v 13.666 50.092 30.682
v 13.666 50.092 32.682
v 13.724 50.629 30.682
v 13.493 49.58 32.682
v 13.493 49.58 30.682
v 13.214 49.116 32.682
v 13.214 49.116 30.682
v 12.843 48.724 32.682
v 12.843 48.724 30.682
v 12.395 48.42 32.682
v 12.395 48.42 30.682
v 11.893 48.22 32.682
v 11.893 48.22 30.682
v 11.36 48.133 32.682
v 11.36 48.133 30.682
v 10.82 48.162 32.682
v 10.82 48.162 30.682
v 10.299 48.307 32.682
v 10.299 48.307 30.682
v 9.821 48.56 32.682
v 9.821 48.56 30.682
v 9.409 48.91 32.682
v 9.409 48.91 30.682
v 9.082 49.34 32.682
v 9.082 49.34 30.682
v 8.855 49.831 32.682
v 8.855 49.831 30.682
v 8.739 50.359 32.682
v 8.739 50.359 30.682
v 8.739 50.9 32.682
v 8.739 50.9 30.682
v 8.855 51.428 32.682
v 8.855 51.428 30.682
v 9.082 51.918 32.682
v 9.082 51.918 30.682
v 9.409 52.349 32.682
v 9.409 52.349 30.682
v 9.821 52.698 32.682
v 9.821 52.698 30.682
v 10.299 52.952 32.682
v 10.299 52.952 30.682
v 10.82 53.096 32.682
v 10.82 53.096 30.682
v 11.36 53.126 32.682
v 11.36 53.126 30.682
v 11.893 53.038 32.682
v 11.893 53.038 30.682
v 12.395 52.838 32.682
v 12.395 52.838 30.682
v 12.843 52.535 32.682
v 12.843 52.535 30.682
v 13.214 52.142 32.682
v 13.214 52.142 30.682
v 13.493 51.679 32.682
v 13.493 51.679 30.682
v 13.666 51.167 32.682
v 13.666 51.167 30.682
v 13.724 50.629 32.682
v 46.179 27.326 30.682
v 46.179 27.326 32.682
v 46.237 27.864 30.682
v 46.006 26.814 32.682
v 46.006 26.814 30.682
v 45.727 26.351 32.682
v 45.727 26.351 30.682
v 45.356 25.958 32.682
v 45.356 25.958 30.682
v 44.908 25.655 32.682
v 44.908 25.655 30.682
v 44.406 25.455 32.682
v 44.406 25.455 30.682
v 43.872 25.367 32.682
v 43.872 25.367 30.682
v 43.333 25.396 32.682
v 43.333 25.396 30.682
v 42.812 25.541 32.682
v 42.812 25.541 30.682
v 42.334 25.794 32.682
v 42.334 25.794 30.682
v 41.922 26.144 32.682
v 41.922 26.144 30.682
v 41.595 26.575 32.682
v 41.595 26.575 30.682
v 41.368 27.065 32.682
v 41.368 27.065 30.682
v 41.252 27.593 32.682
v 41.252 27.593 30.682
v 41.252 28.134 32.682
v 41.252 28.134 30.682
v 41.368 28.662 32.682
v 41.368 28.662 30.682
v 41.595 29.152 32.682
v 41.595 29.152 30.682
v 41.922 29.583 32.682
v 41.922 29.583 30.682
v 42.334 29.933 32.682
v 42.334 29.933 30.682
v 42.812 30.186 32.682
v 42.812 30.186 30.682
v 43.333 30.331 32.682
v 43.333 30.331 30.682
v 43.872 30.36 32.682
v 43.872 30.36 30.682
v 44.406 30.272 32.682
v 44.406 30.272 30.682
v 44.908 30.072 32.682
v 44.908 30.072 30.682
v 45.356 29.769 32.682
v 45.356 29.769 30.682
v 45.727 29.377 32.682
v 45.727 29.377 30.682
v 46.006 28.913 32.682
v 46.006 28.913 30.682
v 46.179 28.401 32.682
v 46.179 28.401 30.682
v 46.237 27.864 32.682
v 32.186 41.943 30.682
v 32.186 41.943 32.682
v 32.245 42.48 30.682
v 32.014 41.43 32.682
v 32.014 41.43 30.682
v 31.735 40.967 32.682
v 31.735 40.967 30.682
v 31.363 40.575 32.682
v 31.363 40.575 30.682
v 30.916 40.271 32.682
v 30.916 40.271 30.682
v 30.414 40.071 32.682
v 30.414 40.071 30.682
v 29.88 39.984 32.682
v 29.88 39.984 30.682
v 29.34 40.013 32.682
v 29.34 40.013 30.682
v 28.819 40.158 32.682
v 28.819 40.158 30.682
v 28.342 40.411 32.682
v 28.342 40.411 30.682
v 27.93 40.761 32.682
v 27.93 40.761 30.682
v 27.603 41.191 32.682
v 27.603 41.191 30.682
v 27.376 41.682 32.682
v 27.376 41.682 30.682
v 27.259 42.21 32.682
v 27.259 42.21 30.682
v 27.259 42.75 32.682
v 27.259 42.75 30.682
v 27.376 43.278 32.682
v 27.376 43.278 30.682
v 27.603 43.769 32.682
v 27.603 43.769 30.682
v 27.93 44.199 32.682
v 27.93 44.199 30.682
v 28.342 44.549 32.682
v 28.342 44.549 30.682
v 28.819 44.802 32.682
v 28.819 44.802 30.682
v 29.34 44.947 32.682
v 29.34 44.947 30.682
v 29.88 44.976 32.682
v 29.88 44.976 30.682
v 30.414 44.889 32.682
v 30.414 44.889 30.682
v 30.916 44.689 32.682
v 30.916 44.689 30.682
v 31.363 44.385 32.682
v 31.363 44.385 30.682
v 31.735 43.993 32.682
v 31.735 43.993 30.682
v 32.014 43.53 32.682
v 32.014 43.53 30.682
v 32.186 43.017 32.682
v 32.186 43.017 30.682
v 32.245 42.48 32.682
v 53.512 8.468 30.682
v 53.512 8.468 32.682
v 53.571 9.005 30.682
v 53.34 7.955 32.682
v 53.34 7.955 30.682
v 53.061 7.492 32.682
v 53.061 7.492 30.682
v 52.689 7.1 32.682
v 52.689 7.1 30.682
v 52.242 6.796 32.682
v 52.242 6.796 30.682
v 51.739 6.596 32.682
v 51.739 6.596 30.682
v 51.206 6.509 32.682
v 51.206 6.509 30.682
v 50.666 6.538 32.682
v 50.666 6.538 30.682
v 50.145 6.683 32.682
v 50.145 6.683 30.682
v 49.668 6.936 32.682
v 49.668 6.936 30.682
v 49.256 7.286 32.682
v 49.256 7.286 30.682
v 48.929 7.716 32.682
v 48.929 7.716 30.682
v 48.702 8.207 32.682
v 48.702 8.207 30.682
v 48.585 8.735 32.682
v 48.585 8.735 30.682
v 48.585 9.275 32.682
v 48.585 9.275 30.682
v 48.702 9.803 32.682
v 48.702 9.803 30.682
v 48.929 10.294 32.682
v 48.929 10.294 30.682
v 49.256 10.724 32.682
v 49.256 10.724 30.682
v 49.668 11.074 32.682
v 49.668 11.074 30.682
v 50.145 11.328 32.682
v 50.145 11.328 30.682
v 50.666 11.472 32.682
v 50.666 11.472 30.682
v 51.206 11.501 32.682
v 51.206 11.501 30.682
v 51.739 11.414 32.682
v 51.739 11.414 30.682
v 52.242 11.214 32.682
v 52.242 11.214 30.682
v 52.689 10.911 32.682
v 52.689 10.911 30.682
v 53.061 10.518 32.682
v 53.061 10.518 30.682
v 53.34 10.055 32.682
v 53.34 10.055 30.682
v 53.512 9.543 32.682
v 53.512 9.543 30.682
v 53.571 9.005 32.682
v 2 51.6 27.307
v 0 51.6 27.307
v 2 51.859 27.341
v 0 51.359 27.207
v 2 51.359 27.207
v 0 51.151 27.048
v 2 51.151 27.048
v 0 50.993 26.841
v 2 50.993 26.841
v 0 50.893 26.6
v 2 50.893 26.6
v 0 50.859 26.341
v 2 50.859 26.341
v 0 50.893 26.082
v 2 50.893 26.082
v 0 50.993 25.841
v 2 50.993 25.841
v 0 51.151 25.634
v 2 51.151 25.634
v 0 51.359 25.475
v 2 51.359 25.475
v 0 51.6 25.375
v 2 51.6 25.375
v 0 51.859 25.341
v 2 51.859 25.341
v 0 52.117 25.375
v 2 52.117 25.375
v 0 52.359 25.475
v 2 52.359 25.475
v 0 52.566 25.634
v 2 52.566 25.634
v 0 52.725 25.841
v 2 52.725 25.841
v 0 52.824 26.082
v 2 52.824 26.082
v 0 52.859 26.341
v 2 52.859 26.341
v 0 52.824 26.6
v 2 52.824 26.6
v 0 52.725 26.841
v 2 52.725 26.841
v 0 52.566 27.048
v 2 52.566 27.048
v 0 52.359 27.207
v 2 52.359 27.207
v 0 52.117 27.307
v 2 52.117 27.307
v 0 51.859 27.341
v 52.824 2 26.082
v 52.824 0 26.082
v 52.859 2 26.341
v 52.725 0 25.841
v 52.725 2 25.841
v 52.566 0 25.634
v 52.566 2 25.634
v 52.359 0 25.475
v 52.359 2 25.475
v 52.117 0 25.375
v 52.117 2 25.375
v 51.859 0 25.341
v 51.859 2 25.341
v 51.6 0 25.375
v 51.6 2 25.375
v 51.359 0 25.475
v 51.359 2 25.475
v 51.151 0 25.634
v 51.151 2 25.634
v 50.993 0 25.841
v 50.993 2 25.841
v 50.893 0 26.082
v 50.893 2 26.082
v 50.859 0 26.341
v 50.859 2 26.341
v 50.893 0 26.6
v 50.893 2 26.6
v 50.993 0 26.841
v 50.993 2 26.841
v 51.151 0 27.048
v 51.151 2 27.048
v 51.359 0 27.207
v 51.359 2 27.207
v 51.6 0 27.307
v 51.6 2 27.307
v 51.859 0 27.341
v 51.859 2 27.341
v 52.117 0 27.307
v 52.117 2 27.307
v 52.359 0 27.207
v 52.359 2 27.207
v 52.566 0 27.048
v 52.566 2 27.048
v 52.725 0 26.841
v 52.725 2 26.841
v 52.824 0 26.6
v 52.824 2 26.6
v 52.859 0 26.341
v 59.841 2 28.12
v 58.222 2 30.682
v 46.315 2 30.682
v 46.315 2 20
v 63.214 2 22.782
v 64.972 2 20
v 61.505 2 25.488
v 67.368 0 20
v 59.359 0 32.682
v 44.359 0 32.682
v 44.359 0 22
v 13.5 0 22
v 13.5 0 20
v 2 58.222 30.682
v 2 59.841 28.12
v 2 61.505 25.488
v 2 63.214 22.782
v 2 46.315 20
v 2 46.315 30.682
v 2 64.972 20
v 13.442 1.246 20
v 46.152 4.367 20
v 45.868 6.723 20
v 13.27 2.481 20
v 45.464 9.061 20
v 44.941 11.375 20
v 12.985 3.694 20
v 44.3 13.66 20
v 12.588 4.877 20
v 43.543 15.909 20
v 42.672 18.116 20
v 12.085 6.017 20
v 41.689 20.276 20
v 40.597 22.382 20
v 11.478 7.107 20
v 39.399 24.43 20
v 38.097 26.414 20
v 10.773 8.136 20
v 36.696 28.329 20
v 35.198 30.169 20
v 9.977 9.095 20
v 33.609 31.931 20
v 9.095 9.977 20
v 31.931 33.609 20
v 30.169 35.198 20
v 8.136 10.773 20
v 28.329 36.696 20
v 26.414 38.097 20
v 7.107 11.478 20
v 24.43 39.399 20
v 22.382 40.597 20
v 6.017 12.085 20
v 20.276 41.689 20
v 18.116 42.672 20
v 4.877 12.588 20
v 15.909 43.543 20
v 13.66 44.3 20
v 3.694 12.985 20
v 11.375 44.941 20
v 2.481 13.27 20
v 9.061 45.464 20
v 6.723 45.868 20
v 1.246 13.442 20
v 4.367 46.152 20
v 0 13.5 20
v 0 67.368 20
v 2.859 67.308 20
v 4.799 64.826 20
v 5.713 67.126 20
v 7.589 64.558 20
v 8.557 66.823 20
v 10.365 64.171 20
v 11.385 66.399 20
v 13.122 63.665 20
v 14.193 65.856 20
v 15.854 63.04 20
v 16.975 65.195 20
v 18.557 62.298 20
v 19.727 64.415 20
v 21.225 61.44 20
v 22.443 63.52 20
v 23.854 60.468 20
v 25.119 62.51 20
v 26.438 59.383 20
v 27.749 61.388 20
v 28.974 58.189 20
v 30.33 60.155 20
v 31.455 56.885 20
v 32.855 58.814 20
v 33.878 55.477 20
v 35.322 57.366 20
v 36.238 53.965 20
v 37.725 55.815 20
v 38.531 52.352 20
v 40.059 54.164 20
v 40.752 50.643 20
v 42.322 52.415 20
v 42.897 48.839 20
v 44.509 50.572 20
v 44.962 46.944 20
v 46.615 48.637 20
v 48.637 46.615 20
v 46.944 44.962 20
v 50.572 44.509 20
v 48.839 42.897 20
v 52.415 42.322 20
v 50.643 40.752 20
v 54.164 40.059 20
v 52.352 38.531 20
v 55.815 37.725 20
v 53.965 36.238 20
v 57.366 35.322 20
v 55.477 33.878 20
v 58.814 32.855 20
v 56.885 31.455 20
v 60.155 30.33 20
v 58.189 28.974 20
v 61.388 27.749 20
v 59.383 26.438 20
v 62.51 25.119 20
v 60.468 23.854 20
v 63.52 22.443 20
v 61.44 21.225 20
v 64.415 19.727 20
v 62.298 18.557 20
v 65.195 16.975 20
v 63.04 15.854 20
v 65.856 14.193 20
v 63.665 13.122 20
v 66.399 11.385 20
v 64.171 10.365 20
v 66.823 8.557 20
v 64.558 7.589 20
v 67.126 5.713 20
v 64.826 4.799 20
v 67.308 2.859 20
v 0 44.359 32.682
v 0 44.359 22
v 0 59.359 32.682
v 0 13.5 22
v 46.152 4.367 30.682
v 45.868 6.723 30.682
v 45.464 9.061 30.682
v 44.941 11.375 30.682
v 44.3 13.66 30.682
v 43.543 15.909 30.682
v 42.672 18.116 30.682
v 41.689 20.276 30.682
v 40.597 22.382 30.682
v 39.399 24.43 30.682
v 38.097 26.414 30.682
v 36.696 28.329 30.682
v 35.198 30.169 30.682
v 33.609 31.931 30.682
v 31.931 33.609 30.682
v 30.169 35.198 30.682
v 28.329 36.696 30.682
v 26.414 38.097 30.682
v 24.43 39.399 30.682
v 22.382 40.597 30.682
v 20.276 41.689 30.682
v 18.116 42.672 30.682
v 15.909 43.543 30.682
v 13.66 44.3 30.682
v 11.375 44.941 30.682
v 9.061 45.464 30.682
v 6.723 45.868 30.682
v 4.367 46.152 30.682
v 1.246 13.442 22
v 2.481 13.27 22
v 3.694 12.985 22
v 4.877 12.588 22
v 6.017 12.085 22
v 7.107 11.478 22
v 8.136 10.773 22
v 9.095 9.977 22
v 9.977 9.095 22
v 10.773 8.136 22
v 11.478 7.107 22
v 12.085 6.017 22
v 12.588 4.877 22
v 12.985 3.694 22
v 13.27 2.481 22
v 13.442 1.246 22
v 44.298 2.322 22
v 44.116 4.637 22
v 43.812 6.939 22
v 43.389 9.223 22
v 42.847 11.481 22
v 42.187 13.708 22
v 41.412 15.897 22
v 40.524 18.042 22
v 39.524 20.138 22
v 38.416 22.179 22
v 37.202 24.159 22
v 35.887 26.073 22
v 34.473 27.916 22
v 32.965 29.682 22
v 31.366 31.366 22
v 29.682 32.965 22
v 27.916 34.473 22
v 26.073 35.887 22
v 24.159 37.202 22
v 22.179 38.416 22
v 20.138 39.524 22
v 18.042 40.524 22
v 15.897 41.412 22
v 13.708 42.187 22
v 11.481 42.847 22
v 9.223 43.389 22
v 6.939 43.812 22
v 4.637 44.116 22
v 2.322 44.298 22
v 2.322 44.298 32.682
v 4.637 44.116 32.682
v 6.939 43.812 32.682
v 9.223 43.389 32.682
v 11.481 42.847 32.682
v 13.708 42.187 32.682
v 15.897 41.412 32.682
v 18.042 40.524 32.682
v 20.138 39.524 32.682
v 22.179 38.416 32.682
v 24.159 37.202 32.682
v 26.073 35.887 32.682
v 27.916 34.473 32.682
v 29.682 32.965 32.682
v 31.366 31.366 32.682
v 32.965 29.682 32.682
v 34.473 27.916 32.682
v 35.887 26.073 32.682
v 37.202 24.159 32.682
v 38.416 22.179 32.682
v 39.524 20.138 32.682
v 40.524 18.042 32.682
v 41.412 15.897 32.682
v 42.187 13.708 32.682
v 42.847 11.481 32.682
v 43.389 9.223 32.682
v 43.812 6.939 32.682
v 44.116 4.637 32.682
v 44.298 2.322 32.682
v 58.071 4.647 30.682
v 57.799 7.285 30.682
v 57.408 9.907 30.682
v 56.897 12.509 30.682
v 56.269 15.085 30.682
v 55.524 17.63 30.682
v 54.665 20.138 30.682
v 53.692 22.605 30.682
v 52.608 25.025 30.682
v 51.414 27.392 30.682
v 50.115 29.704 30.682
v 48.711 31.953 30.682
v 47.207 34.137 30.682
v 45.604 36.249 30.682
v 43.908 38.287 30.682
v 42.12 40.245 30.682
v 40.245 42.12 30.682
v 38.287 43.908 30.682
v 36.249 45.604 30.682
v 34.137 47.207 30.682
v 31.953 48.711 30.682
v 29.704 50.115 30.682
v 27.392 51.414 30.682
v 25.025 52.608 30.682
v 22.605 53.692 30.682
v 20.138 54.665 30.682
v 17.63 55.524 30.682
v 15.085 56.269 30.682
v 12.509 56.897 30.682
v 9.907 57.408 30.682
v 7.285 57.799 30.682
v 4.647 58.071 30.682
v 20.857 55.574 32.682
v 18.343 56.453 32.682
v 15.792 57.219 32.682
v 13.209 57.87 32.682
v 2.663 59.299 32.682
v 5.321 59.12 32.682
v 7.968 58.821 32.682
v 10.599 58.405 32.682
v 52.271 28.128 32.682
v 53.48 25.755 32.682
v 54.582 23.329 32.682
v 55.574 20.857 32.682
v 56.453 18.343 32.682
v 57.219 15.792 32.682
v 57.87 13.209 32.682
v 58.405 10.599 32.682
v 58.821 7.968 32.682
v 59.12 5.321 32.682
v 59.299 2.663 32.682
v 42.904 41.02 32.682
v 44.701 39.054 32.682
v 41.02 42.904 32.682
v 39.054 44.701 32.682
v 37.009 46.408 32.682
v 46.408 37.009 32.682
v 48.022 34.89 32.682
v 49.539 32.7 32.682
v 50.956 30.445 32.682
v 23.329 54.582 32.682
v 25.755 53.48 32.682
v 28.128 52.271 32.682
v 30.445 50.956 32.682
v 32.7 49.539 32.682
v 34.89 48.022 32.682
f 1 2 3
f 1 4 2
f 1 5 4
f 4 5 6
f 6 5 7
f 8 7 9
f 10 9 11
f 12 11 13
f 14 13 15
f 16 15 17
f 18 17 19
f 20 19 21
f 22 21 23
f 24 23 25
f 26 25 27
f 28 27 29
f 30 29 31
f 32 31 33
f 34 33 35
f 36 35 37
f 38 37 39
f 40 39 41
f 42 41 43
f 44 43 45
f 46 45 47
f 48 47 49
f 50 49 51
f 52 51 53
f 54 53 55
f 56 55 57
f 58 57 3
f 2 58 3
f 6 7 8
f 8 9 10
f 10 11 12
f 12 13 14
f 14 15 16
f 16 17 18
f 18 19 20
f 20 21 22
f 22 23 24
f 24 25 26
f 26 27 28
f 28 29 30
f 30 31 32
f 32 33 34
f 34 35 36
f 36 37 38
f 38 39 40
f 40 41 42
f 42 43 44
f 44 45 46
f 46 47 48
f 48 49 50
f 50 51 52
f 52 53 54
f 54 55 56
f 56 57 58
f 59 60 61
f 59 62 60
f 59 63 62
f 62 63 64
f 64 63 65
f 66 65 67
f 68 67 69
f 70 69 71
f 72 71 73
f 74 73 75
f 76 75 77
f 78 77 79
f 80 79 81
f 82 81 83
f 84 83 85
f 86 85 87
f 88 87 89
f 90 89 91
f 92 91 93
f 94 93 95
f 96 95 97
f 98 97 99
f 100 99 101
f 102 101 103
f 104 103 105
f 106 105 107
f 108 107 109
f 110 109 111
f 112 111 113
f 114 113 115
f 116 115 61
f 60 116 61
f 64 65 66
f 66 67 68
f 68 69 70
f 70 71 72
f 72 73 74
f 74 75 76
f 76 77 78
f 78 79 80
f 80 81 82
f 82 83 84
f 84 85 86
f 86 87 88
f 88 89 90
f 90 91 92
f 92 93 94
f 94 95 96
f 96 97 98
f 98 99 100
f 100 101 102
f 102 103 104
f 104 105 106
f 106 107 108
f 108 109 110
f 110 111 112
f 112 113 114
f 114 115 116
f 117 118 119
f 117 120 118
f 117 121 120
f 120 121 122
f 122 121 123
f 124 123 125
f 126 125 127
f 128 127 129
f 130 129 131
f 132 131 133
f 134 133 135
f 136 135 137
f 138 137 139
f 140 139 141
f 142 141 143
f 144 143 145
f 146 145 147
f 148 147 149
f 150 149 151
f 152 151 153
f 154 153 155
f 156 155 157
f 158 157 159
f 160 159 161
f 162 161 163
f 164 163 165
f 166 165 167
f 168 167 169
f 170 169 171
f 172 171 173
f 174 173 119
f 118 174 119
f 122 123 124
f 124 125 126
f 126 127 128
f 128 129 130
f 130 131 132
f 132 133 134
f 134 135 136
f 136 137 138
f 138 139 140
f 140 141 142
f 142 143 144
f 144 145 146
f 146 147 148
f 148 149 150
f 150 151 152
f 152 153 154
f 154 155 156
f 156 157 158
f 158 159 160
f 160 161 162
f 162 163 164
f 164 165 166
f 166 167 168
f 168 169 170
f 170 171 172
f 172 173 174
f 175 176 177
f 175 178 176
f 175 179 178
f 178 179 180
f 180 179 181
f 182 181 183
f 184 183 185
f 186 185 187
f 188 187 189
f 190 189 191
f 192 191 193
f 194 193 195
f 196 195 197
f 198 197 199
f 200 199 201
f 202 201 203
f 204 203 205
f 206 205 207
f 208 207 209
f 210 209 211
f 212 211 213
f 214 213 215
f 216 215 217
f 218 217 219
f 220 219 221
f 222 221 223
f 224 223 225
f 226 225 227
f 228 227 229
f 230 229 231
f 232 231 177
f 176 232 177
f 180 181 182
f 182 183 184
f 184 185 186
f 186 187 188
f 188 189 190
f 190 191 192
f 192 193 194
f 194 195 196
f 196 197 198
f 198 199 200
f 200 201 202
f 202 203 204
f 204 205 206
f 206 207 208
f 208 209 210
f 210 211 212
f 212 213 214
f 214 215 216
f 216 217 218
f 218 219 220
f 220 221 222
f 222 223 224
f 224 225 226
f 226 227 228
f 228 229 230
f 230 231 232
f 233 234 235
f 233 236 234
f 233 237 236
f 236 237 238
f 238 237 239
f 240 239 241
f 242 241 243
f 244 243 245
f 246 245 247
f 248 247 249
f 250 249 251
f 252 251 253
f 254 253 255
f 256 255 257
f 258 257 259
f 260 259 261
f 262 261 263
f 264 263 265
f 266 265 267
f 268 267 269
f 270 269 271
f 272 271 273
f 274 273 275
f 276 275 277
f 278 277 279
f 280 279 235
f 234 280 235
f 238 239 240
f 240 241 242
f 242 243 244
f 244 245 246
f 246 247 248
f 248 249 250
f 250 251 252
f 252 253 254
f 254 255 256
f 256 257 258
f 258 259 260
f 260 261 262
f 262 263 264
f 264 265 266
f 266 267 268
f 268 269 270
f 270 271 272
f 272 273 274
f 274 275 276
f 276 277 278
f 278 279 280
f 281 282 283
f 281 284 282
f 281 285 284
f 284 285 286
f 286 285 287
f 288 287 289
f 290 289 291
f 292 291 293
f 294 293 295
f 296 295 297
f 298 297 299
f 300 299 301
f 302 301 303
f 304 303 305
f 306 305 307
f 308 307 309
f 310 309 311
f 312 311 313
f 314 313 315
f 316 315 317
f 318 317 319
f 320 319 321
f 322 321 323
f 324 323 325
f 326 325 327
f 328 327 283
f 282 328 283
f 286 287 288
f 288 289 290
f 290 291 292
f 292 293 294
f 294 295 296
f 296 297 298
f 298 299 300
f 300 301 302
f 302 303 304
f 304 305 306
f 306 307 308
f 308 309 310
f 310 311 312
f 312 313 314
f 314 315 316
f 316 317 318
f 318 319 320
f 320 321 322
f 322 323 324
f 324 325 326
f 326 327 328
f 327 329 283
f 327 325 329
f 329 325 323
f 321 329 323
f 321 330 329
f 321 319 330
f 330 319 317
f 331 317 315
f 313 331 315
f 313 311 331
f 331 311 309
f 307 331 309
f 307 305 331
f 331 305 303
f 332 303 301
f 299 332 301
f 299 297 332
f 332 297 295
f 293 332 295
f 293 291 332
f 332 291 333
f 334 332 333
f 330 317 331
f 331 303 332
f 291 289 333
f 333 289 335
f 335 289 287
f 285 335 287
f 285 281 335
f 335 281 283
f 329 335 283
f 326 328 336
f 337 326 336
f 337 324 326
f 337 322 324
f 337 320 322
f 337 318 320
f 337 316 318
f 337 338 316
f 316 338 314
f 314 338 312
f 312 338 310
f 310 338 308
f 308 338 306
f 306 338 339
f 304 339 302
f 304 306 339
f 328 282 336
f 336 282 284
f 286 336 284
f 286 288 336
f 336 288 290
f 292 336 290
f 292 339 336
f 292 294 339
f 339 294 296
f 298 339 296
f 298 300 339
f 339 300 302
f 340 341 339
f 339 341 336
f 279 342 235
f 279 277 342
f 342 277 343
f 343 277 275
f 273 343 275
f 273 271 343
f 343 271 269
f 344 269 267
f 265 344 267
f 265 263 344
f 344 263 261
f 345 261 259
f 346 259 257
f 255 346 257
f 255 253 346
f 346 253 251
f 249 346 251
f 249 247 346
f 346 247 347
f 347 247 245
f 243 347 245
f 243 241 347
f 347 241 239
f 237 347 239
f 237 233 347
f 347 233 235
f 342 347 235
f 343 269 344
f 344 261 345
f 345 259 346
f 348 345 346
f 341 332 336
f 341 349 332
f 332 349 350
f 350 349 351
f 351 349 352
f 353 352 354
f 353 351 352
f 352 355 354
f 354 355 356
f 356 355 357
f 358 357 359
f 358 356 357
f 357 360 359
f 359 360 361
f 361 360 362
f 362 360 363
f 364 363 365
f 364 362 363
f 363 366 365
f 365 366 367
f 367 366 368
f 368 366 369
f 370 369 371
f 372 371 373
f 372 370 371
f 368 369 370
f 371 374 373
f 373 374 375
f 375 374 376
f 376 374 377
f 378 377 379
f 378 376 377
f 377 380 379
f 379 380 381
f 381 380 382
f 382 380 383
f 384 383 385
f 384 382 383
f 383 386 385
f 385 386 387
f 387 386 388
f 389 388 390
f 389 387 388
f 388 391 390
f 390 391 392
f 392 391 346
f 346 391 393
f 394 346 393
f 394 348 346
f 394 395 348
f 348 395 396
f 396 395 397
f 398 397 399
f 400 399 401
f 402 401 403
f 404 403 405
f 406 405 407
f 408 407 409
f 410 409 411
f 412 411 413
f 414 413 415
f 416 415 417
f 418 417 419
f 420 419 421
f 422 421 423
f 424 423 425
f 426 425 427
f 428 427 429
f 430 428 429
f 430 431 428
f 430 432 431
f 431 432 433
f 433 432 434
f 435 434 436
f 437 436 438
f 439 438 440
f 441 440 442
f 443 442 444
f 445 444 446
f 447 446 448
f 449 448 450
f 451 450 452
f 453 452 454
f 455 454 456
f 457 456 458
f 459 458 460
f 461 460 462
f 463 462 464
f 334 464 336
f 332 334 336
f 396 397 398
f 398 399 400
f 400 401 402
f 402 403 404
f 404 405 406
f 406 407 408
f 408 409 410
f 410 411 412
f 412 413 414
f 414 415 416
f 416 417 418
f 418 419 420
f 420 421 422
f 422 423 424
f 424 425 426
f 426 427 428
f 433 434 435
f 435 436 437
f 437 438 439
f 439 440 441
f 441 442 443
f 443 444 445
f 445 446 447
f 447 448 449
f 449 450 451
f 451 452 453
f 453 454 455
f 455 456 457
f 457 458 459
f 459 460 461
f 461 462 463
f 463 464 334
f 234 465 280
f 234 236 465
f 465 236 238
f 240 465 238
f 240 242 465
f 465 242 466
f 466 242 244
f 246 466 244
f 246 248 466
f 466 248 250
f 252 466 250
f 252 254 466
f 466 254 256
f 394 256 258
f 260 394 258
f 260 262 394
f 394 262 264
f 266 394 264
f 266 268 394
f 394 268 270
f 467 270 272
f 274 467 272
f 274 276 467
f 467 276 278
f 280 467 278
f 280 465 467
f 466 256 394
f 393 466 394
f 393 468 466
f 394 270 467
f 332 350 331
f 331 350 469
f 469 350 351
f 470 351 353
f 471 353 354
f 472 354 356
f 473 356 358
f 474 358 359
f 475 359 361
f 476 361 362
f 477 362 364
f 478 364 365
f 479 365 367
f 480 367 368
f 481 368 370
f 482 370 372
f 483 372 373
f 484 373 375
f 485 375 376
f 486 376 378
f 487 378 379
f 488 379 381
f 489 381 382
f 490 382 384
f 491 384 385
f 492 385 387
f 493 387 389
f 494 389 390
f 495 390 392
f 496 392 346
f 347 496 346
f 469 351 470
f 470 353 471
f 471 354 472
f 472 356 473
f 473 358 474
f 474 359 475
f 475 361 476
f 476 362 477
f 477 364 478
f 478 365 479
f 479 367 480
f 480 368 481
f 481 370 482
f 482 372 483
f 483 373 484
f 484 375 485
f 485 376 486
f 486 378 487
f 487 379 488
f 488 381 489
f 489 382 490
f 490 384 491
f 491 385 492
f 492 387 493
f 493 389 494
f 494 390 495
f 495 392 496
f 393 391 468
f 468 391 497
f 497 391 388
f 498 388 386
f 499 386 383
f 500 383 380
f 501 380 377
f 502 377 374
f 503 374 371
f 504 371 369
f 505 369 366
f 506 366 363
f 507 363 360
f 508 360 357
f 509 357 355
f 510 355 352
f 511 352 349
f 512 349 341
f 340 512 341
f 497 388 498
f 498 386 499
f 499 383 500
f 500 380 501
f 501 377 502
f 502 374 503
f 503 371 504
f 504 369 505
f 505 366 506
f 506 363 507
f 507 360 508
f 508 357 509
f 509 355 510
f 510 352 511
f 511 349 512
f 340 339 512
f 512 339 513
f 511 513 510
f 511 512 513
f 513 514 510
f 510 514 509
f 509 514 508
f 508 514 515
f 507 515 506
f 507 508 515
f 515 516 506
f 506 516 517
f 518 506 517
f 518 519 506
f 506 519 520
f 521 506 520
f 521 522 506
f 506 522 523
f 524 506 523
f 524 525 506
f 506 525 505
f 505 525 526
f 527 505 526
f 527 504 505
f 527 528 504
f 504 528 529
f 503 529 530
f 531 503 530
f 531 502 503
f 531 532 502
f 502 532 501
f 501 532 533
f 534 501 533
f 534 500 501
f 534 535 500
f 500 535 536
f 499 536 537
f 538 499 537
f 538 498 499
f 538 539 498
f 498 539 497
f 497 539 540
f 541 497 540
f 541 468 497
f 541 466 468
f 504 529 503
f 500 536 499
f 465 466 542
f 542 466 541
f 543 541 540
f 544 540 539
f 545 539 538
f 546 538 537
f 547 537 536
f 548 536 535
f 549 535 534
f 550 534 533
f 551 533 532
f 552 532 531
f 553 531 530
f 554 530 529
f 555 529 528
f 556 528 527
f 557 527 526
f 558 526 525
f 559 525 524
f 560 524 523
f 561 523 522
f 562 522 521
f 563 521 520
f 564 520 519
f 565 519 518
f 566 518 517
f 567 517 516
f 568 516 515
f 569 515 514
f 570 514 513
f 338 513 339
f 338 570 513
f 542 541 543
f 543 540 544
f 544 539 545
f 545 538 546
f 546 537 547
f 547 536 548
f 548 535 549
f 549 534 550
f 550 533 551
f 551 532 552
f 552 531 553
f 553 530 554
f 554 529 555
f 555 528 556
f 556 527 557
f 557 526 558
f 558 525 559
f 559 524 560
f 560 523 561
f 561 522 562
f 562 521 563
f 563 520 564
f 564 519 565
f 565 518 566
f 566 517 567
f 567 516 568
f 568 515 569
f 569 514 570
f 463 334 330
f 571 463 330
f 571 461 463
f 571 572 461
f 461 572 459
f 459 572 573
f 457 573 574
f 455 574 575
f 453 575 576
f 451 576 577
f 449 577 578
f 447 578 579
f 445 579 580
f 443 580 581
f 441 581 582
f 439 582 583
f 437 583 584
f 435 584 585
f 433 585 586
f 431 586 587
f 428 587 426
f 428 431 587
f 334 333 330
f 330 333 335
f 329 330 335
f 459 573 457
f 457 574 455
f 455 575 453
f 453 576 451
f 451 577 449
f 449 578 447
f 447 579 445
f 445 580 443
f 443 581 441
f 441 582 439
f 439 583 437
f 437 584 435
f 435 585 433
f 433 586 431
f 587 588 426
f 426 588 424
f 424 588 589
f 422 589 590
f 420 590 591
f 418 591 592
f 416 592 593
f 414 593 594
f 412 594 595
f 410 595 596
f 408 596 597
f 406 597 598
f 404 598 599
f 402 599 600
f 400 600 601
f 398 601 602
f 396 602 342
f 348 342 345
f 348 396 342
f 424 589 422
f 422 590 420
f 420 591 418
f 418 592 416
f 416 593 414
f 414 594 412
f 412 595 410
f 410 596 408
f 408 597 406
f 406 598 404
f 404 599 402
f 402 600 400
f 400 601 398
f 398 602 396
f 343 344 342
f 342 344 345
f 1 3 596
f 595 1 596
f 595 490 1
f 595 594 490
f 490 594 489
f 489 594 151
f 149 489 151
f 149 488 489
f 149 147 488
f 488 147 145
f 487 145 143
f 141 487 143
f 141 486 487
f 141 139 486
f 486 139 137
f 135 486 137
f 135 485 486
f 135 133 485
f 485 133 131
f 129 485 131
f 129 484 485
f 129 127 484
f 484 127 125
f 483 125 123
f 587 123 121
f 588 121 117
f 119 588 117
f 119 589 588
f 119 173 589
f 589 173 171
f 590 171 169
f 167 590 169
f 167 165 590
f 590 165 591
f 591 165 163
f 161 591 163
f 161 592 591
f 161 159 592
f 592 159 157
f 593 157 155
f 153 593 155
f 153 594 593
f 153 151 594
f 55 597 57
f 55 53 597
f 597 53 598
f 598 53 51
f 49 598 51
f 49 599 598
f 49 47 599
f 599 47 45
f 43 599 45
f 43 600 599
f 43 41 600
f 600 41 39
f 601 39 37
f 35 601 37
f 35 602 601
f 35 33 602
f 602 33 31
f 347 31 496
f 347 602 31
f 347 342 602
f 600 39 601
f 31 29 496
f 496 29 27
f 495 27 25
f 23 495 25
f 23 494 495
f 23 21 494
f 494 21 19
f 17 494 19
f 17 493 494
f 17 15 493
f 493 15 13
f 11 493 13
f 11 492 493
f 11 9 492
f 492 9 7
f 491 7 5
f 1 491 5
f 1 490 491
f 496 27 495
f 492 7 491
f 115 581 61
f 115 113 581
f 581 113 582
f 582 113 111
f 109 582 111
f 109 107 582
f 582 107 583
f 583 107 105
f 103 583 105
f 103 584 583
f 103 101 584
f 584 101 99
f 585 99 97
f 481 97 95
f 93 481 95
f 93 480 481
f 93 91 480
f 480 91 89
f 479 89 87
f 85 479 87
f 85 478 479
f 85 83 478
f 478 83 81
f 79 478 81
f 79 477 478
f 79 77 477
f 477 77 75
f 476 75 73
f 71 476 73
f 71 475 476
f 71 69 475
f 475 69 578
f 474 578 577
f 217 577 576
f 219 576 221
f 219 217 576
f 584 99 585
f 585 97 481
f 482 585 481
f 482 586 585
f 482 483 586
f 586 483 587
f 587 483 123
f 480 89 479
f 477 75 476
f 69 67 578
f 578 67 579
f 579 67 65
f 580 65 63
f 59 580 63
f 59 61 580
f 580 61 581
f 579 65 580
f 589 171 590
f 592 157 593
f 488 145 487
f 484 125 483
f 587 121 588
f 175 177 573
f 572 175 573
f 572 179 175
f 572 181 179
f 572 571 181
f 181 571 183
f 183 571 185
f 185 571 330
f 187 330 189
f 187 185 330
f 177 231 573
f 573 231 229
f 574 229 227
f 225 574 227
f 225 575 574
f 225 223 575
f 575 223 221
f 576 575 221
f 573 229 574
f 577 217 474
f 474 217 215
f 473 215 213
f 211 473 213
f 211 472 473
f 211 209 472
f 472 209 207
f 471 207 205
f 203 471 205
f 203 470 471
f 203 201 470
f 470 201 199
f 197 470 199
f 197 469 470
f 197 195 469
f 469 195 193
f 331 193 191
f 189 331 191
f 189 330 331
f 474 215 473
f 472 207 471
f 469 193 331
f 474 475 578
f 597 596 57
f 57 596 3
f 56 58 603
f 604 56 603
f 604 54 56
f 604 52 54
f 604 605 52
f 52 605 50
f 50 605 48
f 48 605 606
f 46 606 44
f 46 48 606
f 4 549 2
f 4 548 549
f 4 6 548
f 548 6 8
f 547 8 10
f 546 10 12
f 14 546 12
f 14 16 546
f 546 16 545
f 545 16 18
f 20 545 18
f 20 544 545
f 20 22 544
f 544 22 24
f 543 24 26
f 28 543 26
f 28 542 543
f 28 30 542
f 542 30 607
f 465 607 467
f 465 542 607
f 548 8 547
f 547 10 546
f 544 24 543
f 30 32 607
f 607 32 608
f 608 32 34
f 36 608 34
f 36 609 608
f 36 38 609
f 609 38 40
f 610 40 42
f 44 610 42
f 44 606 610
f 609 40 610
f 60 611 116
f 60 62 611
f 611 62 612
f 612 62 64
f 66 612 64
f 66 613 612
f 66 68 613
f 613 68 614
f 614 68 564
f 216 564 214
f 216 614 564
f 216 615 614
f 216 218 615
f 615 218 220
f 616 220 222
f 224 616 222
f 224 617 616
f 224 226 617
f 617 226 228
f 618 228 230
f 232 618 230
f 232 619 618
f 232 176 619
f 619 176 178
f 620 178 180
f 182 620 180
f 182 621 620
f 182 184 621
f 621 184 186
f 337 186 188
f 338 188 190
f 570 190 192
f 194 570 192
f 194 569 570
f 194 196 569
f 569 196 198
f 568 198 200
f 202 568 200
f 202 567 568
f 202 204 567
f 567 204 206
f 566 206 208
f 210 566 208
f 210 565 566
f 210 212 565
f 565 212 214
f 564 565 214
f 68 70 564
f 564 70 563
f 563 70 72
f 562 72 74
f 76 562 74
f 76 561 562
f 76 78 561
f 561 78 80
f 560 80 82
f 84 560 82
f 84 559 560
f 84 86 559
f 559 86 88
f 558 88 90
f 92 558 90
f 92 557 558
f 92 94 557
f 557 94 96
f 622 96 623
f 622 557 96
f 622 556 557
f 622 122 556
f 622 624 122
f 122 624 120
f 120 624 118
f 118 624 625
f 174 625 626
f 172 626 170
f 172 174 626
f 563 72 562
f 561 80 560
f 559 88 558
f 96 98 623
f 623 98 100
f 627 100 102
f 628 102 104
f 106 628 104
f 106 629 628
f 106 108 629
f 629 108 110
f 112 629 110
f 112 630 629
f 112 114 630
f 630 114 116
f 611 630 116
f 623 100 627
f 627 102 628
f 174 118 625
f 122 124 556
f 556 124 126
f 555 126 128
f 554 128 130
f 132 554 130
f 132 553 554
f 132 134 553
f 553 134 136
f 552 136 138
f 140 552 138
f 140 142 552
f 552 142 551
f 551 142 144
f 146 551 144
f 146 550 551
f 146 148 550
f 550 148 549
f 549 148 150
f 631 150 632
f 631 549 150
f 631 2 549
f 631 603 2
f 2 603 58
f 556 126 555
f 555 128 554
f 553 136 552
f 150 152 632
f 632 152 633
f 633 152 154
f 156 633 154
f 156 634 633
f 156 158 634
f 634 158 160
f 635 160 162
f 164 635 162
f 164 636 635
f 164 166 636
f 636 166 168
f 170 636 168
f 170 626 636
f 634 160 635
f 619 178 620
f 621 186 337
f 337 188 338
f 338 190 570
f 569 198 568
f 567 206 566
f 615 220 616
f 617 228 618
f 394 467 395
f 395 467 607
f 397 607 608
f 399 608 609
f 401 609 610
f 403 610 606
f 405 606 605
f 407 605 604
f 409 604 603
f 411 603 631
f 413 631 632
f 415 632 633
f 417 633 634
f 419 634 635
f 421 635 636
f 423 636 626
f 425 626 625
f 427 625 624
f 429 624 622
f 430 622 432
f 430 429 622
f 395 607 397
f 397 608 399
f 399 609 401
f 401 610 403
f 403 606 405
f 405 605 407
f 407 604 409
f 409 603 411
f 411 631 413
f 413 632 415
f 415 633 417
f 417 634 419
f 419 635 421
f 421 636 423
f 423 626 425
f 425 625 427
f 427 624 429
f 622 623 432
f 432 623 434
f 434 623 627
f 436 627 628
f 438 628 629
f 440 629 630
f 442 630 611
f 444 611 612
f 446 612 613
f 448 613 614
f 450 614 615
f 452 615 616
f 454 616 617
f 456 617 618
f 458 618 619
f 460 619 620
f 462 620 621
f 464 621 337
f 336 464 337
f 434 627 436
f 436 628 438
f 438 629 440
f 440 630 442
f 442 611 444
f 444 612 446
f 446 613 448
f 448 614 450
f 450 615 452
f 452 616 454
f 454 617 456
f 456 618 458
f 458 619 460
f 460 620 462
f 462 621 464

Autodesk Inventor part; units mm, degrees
ref_plane "YZ Plane" through (0, 0, 0) normal (1, 0, 0) x (0, 1, 0)
ref_plane "XZ Plane" through (0, 0, 0) normal (0, 1, 0) x (-1, 0, 0)
ref_plane "XY Plane" through (0, 0, 0) normal (0, 0, 1) x (1, 0, 0)
sketch "Esquisse4" plane through (0, 0, 0) normal (1, 0, 0) x (0, 1, 0)
  line L0 (0, 0) -> (80, 0) construction
  line L1 (0, 0) -> (0, 76) construction
  line L2 (0, 76) -> (32, 76) construction
  line L3 (32, 76) -> (80, 0) construction
  line L4 (67.3684, 0) -> (67.3684, 20) construction
  line L5 (67.3684, 20) -> (0, 20) construction
  line L6 (67.3684, 20) -> (59.3585, 32.6823)
  line L7 (0, 20) -> (0, 22)
  line L8 (59.3585, 32.6823) -> (44.3585, 32.6823)
  line L9 (44.3585, 32.6823) -> (44.3585, 20)
  line L10 (44.3585, 20) -> (46.3585, 20)
  line L11 (46.3585, 20) -> (46.3585, 32.6823) construction
  line L12 (46.3585, 32.6823) -> (46.3585, 30.6823) construction
  line L13 (46.3585, 30.6823) -> (60.6217, 30.6823) construction
  line L14 (46.3585, 30.6823) -> (46.3585, 20)
  line L15 (58.2562, 30.6823) -> (65.0029, 20)
  line L16 (60.6217, 30.6823) -> (58.9307, 29.6143) construction
  line L17 (46.3585, 30.6823) -> (58.2562, 30.6823)
  line L18 (65.0029, 20) -> (67.3684, 20)
  line L19 (0, 20) -> (44.3585, 20)
  line L20 (0, 22) -> (44.3585, 22)
  dimension "d23" = 80
  dimension "d24" = 76
  dimension "d25" = 32
  dimension "d27" = 20
  dimension "d28" = 15
  dimension "d29" = 2
  dimension "d30" = 15
  dimension "d31" = 2
  dimension "d32" = 2
  dimension "d33" = 2
revolve "Révolution2" add sketch "Esquisse4" angle 90 about axis through (0, 0, 0) along (0, 0, -1)
sketch "Esquisse9" plane through (0, 0, 22) normal (0, 0, 1) x (-0.7071, 0.7071, 0)
  circle A0 centre (0, 0) radius 44.3585 projected
  circle A1 centre (0, 0) radius 13.5
  dimension "d35" = 27
extrude "Extrusion3" cut sketch "Esquisse9" against normal blind 10 contours A1
sketch "Esquisse14" plane through (0, 44.3585, 32.6823) normal (-1, 0, 0) x (0, 0, 1)
  line L0 (0, 0) -> (-10.6823, 0) projected
  line L1 (-12.6823, 20.6444) -> (-12.6823, 23.0099) projected
  line L2 (-2, 13.8977) -> (-12.6823, 20.6444) projected
  line L3 (-2, 2) -> (-2, 13.8977) projected
  line L4 (-12.6823, -30.8585) -> (-12.6823, 2) projected
  line L5 (-12.6823, 20.6444) -> (-2, 13.8977)
  line L6 (-2, 13.8977) -> (-2, 0)
  line L7 (-2, 0) -> (-12.6823, 0)
  line L8 (-12.6823, 0) -> (-12.6823, 20.6444)
  point P0 (-32.6823, -44.3585)
extrude "Extrusion8" add sketch "Esquisse14" against normal blind 2
sketch "Esquisse15" plane through (44.3585, 0, 32.6823) normal (0, -1, 0) x (1, 0, 0)
  line L0 (-30.8585, -10.6823) -> (-30.8585, -12.6823) projected
  line L1 (-30.8585, -12.6823) -> (2, -12.6823) projected
  line L2 (13.8977, -2) -> (20.6444, -12.6823) projected
  line L3 (0, 0) -> (0, -10.6823) projected
  line L4 (0, -10.6823) -> (-30.8585, -10.6823) projected
  line L5 (20.6444, -12.6823) -> (13.8977, -2)
  line L6 (13.8977, -2) -> (0, -2)
  line L7 (0, -2) -> (0, -12.6823)
  line L8 (0, -12.6823) -> (20.6444, -12.6823)
  point P0 (-44.3585, -32.6823)
extrude "Extrusion9" add sketch "Esquisse15" against normal blind 2
sketch "Esquisse17" plane through (44.3585, 0, 32.6823) normal (0, -1, 0) x (1, 0, 0)
  line L0 (-30.8585, -12.6823) -> (23.0099, -12.6823) projected
  line L1 (15, 0) -> (0, 0) projected
  line L2 (15, 0) -> (0, 0) construction
  line L3 (7.5, 0) -> (7.5, -12.6823) construction
  circle A0 centre (7.5, -6.3412) radius 1
  point P0 (-44.3585, -32.6823)
  dimension "d61" = 2
extrude "Extrusion10" cut sketch "Esquisse17" against normal blind 2
sketch "Esquisse18" plane through (0, 44.3585, 32.6823) normal (-1, 0, 0) x (0, 0, 1)
  line L0 (-12.6823, -30.8585) -> (-12.6823, 23.0099) projected
  line L1 (0, 15) -> (0, 0) projected
  line L2 (0, 0) -> (0, 15) construction
  line L3 (0, 7.5) -> (-12.6823, 7.5) construction
  circle A0 centre (-6.3412, 7.5) radius 1
  point P0 (-32.6823, -44.3585)
  dimension "d64" = 2
extrude "Extrusion11" cut sketch "Esquisse18" against normal blind 2
sketch "Esquisse19" plane through (0, 44.3585, 32.6823) normal (0, 0, 1) x (1, 0, 0)
  arc A0 (44.3585, -44.3585) -> (0, 0) centre (0, -44.3585) ccw projected
  line L0 (59.3585, -44.3585) -> (44.3585, -44.3585) projected
  arc A1 (59.3585, -44.3585) -> (0, 15) centre (0, -44.3585) ccw projected
  line L1 (0, -44.3585) -> (59.3585, -44.3585) construction
  line L2 (44.3585, -44.3585) -> (59.3585, -44.3585) construction
  line L3 (0, -44.3585) -> (50.0625, -12.4652) construction
  line L4 (37.4116, -20.5247) -> (50.0625, -12.4652) construction
  circle A2 centre (43.737, -16.495) radius 2.5
  circle A3 centre (29.7448, -1.8785) radius 2.5
  circle A4 centre (11.2242, 6.2707) radius 2.5
  circle A5 centre (-9.0051, 6.7122) radius 2.5
  circle A6 centre (-27.8636, -0.6215) radius 2.5
  circle A7 centre (-42.48, -14.6137) radius 2.5
  circle A8 centre (-50.6293, -33.1343) radius 2.5
  circle A9 centre (-51.0707, -53.3637) radius 2.5
  circle A10 centre (-43.737, -72.2221) radius 2.5
  circle A11 centre (-29.7448, -86.8385) radius 2.5
  circle A12 centre (-11.2242, -94.9878) radius 2.5
  circle A13 centre (9.0051, -95.4292) radius 2.5
  circle A14 centre (27.8636, -88.0956) radius 2.5
  circle A15 centre (42.48, -74.1034) radius 2.5
  circle A16 centre (50.6293, -55.5828) radius 2.5
  circle A17 centre (51.0707, -35.3534) radius 2.5
  dimension "d67" = 32.5
  dimension "d68" = 5
  dimension "d71" = 360
extrude "Extrusion12" cut sketch "Esquisse19" against normal through all contours A2 | A3 | A4 | A17
properties part number "led"
